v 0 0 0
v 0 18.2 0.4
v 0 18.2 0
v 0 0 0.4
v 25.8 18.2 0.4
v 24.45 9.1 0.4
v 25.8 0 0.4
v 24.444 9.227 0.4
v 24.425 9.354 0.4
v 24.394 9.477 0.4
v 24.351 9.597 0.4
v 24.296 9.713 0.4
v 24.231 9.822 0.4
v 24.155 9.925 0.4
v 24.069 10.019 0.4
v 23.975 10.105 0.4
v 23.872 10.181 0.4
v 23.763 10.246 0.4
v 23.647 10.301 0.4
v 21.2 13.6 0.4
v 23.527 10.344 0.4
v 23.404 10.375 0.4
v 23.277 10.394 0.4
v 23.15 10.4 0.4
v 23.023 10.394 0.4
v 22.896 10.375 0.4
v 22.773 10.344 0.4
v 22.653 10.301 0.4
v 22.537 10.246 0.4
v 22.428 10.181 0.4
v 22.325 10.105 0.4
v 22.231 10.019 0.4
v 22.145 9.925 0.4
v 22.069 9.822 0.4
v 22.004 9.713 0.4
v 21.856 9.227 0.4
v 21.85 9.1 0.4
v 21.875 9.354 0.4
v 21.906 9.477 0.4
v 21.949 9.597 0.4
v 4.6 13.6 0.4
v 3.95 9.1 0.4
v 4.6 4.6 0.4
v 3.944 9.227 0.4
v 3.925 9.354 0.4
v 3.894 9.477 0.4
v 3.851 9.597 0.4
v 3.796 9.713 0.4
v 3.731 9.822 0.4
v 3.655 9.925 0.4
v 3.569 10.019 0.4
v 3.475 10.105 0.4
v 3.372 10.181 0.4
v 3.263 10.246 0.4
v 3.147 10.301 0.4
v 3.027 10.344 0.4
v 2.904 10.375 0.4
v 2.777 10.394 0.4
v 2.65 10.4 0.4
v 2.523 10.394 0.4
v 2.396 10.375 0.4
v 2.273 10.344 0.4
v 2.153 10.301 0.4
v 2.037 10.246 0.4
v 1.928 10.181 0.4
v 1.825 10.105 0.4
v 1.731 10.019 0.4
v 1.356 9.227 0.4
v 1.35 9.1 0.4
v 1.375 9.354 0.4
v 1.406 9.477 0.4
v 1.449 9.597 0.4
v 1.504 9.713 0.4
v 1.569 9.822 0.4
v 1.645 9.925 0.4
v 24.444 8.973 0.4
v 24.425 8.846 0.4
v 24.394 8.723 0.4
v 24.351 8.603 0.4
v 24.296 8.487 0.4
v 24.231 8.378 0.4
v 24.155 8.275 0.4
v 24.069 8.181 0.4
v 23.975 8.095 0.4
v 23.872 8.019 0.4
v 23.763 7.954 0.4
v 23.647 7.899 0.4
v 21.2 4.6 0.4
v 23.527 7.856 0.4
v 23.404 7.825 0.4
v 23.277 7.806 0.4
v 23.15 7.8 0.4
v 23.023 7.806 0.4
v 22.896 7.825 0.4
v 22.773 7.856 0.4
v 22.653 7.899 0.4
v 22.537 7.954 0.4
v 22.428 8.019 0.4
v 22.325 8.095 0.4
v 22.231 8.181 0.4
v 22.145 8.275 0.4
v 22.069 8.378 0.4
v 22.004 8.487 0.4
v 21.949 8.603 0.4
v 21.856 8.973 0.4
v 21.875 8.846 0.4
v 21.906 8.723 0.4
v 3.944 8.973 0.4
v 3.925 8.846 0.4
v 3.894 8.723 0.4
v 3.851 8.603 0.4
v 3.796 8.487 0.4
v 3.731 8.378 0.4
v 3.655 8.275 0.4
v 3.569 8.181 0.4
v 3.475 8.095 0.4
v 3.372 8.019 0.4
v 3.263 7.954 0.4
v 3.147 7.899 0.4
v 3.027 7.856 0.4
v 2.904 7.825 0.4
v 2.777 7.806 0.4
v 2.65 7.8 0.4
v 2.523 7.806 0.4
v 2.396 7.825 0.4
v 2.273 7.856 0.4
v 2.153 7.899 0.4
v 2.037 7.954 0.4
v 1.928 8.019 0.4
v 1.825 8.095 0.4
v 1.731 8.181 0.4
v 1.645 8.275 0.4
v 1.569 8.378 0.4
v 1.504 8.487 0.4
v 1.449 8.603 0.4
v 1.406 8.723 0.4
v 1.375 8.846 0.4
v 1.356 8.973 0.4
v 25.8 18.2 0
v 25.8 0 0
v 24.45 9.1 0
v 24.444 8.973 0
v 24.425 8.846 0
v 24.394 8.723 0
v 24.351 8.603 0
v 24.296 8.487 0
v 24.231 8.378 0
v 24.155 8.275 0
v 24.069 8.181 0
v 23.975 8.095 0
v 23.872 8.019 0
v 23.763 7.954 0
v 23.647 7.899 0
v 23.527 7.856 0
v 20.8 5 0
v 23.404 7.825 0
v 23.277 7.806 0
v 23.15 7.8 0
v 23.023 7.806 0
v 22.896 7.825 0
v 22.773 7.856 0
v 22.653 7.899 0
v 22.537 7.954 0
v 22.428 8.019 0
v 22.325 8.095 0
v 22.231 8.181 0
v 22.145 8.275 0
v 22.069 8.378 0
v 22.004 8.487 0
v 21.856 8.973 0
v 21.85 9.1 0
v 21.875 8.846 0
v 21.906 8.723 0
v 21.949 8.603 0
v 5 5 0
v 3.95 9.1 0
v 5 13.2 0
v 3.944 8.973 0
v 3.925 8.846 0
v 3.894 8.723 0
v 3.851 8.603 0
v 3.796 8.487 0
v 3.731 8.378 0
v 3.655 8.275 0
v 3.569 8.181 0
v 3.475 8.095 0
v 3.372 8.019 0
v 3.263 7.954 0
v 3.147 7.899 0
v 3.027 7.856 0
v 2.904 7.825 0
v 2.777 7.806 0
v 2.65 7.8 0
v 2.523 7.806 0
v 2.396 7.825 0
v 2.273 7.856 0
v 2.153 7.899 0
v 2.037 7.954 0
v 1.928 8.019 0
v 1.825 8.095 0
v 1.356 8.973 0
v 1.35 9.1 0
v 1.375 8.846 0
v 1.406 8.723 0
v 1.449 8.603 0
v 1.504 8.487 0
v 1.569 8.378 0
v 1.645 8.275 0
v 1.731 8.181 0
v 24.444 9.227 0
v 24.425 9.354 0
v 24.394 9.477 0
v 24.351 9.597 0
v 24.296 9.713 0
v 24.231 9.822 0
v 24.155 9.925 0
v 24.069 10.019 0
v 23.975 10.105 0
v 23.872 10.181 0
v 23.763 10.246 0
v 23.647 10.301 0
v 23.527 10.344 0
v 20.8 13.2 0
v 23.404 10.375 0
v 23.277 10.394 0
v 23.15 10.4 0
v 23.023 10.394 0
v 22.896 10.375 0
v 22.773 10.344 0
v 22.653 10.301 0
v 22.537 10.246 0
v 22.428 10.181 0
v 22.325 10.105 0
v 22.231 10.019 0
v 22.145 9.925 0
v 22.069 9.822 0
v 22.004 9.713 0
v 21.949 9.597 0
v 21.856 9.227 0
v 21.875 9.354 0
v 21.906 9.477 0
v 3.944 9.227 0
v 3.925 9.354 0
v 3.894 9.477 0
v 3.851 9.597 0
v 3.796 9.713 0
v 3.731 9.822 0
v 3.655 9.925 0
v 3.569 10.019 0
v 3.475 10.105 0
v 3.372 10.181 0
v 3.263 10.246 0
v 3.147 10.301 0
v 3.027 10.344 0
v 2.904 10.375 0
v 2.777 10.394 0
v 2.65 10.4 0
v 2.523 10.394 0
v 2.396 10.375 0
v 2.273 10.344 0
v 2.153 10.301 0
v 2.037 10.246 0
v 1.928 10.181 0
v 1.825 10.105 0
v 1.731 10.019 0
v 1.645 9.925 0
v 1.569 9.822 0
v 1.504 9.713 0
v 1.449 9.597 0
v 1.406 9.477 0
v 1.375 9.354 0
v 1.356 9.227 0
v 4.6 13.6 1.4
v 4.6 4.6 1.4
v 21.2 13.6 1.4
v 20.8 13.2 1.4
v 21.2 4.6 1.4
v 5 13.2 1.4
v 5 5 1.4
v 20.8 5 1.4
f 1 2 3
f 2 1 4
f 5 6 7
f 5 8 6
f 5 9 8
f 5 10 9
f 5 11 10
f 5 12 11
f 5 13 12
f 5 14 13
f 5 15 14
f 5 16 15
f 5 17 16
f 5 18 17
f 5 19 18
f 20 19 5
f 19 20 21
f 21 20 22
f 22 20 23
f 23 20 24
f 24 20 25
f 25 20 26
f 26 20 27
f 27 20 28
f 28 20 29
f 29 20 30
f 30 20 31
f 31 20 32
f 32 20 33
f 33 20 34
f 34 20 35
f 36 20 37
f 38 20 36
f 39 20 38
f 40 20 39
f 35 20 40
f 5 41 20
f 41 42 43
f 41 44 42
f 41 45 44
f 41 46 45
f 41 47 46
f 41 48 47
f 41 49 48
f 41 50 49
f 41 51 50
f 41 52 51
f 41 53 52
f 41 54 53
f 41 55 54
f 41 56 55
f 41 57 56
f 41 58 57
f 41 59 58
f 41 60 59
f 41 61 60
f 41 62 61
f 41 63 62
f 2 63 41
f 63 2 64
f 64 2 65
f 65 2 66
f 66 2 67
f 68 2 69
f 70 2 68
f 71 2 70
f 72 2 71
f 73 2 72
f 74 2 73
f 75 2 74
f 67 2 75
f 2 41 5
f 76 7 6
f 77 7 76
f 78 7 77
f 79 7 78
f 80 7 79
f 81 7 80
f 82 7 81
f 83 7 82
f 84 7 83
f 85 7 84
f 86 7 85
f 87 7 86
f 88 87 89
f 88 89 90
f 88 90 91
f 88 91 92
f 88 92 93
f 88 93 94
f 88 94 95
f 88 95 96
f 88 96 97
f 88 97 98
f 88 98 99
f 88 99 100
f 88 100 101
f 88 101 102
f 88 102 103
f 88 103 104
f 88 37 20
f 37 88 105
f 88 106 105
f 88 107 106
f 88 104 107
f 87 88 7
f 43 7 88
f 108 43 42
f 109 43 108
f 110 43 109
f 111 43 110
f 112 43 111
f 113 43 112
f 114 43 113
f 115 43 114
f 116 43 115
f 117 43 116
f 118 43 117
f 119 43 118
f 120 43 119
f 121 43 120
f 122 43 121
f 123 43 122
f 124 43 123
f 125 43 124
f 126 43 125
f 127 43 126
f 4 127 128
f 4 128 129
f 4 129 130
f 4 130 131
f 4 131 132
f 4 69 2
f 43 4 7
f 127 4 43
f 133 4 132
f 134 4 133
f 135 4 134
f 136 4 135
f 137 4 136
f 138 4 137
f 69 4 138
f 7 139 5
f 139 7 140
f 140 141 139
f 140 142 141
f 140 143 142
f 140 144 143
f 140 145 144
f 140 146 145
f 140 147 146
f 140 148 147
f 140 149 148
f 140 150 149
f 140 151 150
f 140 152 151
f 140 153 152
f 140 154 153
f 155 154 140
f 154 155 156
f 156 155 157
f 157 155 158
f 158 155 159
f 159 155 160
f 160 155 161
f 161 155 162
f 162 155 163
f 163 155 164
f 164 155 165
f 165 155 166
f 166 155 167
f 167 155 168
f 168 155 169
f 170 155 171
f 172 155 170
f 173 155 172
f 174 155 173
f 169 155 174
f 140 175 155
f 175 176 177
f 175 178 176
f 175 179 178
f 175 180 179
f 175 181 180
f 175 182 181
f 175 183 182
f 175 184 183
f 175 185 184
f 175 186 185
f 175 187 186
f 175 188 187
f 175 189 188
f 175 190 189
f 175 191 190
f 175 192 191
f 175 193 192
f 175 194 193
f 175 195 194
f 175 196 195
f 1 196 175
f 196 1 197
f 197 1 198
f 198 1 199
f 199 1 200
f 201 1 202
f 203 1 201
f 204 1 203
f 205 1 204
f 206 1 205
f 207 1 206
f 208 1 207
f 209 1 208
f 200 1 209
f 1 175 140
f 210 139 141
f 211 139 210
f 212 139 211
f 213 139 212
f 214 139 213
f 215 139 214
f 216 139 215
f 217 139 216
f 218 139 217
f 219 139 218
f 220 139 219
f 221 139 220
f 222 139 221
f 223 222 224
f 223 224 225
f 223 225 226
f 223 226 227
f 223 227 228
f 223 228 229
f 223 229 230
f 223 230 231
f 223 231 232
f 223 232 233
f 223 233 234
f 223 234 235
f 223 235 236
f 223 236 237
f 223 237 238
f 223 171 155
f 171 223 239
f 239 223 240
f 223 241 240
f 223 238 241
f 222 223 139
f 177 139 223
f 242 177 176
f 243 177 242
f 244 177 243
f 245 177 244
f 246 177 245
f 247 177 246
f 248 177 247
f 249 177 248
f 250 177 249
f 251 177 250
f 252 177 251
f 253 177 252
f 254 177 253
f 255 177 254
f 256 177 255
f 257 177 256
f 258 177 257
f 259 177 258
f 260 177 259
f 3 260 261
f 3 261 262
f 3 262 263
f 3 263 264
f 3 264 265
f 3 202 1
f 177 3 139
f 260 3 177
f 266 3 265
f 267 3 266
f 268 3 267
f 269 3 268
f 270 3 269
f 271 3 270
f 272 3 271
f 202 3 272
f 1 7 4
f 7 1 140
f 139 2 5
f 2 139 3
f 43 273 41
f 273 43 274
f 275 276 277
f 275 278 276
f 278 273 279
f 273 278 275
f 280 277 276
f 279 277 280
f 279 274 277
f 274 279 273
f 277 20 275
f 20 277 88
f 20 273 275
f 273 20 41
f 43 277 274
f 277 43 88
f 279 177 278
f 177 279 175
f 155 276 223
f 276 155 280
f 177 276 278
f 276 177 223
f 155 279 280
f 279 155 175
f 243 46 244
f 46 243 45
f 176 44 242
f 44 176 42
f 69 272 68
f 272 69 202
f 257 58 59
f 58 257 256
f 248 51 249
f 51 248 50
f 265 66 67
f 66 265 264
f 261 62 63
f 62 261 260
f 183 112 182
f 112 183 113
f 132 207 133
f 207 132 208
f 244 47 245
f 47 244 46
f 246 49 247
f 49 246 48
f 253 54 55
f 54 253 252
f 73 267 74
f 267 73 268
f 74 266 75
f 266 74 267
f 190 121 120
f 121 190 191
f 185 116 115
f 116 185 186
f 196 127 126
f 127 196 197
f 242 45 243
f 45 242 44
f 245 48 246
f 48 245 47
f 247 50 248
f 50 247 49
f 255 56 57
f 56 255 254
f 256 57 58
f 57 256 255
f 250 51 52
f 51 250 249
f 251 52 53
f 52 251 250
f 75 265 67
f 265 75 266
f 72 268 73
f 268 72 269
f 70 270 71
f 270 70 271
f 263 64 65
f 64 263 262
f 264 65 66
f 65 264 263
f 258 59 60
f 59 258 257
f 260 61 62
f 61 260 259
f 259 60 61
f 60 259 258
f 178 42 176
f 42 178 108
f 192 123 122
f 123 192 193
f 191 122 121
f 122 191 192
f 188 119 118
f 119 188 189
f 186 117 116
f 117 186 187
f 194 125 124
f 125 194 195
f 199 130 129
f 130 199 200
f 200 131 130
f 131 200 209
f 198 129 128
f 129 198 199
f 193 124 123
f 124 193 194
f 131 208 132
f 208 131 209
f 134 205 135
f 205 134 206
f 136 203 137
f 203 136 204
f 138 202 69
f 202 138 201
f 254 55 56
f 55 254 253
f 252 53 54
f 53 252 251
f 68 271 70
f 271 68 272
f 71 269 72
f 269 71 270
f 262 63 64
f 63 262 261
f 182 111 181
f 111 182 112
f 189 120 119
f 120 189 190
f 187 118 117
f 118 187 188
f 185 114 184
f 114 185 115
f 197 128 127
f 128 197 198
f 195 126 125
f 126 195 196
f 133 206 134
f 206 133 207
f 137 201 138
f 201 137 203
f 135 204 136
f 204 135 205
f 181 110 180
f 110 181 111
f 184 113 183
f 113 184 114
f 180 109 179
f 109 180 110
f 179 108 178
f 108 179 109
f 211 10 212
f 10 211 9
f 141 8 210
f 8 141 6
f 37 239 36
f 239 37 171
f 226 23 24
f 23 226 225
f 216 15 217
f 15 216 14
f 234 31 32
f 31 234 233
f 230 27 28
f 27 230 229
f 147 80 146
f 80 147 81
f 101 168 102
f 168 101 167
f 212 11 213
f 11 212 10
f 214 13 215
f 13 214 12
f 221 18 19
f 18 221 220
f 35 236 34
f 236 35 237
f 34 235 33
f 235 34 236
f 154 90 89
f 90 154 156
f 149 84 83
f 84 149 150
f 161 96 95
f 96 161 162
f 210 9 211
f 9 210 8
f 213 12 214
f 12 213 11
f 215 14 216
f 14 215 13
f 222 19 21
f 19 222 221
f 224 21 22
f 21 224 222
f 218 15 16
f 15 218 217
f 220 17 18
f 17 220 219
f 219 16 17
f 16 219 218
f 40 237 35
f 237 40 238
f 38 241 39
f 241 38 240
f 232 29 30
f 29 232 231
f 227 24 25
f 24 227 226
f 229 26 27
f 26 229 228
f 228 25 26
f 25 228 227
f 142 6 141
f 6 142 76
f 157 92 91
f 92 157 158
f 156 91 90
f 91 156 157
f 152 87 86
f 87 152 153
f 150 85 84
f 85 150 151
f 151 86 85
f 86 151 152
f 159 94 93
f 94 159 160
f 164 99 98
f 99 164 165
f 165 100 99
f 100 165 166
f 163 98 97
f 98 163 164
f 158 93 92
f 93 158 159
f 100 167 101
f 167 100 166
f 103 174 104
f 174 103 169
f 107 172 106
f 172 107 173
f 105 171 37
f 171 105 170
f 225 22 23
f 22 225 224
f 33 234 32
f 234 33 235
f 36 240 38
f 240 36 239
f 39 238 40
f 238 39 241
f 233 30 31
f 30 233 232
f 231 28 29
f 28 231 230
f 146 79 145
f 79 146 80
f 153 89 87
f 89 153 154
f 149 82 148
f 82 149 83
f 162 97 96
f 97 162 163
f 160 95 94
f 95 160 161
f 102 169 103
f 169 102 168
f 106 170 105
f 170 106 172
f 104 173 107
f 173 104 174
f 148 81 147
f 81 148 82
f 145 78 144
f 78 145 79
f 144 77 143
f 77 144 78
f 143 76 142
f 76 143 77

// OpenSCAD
dim_x = 15.8;
dim_y = 8.2;
dim_z = 1;

wall = 0.4;

f = 0.01;
df = 2 * f;

hole_spacing = 20.5;
hole_dia = 2.6;

$fn = 64;

lip = 10;


difference() {
    union() {
        cube([dim_x + lip, dim_y + lip, wall]);
        translate([lip/2 - wall, lip/2 - wall, 0])
            cube([dim_x + 2 * wall, dim_y + 2 * wall, wall + dim_z]);
    }
    translate([lip/2, lip/2, -f])
        cube([dim_x, dim_y, dim_z + wall + df]);
    
    hole_x_offset = (dim_x + lip)/2 - hole_spacing/2;
    
    translate([hole_x_offset, (dim_y + lip)/2, -f])
        cylinder(d = hole_dia, h = wall + df);

    translate([dim_x + lip - hole_x_offset, (dim_y + lip)/2, -f])
        cylinder(d = hole_dia, h = wall + df);
    
}
